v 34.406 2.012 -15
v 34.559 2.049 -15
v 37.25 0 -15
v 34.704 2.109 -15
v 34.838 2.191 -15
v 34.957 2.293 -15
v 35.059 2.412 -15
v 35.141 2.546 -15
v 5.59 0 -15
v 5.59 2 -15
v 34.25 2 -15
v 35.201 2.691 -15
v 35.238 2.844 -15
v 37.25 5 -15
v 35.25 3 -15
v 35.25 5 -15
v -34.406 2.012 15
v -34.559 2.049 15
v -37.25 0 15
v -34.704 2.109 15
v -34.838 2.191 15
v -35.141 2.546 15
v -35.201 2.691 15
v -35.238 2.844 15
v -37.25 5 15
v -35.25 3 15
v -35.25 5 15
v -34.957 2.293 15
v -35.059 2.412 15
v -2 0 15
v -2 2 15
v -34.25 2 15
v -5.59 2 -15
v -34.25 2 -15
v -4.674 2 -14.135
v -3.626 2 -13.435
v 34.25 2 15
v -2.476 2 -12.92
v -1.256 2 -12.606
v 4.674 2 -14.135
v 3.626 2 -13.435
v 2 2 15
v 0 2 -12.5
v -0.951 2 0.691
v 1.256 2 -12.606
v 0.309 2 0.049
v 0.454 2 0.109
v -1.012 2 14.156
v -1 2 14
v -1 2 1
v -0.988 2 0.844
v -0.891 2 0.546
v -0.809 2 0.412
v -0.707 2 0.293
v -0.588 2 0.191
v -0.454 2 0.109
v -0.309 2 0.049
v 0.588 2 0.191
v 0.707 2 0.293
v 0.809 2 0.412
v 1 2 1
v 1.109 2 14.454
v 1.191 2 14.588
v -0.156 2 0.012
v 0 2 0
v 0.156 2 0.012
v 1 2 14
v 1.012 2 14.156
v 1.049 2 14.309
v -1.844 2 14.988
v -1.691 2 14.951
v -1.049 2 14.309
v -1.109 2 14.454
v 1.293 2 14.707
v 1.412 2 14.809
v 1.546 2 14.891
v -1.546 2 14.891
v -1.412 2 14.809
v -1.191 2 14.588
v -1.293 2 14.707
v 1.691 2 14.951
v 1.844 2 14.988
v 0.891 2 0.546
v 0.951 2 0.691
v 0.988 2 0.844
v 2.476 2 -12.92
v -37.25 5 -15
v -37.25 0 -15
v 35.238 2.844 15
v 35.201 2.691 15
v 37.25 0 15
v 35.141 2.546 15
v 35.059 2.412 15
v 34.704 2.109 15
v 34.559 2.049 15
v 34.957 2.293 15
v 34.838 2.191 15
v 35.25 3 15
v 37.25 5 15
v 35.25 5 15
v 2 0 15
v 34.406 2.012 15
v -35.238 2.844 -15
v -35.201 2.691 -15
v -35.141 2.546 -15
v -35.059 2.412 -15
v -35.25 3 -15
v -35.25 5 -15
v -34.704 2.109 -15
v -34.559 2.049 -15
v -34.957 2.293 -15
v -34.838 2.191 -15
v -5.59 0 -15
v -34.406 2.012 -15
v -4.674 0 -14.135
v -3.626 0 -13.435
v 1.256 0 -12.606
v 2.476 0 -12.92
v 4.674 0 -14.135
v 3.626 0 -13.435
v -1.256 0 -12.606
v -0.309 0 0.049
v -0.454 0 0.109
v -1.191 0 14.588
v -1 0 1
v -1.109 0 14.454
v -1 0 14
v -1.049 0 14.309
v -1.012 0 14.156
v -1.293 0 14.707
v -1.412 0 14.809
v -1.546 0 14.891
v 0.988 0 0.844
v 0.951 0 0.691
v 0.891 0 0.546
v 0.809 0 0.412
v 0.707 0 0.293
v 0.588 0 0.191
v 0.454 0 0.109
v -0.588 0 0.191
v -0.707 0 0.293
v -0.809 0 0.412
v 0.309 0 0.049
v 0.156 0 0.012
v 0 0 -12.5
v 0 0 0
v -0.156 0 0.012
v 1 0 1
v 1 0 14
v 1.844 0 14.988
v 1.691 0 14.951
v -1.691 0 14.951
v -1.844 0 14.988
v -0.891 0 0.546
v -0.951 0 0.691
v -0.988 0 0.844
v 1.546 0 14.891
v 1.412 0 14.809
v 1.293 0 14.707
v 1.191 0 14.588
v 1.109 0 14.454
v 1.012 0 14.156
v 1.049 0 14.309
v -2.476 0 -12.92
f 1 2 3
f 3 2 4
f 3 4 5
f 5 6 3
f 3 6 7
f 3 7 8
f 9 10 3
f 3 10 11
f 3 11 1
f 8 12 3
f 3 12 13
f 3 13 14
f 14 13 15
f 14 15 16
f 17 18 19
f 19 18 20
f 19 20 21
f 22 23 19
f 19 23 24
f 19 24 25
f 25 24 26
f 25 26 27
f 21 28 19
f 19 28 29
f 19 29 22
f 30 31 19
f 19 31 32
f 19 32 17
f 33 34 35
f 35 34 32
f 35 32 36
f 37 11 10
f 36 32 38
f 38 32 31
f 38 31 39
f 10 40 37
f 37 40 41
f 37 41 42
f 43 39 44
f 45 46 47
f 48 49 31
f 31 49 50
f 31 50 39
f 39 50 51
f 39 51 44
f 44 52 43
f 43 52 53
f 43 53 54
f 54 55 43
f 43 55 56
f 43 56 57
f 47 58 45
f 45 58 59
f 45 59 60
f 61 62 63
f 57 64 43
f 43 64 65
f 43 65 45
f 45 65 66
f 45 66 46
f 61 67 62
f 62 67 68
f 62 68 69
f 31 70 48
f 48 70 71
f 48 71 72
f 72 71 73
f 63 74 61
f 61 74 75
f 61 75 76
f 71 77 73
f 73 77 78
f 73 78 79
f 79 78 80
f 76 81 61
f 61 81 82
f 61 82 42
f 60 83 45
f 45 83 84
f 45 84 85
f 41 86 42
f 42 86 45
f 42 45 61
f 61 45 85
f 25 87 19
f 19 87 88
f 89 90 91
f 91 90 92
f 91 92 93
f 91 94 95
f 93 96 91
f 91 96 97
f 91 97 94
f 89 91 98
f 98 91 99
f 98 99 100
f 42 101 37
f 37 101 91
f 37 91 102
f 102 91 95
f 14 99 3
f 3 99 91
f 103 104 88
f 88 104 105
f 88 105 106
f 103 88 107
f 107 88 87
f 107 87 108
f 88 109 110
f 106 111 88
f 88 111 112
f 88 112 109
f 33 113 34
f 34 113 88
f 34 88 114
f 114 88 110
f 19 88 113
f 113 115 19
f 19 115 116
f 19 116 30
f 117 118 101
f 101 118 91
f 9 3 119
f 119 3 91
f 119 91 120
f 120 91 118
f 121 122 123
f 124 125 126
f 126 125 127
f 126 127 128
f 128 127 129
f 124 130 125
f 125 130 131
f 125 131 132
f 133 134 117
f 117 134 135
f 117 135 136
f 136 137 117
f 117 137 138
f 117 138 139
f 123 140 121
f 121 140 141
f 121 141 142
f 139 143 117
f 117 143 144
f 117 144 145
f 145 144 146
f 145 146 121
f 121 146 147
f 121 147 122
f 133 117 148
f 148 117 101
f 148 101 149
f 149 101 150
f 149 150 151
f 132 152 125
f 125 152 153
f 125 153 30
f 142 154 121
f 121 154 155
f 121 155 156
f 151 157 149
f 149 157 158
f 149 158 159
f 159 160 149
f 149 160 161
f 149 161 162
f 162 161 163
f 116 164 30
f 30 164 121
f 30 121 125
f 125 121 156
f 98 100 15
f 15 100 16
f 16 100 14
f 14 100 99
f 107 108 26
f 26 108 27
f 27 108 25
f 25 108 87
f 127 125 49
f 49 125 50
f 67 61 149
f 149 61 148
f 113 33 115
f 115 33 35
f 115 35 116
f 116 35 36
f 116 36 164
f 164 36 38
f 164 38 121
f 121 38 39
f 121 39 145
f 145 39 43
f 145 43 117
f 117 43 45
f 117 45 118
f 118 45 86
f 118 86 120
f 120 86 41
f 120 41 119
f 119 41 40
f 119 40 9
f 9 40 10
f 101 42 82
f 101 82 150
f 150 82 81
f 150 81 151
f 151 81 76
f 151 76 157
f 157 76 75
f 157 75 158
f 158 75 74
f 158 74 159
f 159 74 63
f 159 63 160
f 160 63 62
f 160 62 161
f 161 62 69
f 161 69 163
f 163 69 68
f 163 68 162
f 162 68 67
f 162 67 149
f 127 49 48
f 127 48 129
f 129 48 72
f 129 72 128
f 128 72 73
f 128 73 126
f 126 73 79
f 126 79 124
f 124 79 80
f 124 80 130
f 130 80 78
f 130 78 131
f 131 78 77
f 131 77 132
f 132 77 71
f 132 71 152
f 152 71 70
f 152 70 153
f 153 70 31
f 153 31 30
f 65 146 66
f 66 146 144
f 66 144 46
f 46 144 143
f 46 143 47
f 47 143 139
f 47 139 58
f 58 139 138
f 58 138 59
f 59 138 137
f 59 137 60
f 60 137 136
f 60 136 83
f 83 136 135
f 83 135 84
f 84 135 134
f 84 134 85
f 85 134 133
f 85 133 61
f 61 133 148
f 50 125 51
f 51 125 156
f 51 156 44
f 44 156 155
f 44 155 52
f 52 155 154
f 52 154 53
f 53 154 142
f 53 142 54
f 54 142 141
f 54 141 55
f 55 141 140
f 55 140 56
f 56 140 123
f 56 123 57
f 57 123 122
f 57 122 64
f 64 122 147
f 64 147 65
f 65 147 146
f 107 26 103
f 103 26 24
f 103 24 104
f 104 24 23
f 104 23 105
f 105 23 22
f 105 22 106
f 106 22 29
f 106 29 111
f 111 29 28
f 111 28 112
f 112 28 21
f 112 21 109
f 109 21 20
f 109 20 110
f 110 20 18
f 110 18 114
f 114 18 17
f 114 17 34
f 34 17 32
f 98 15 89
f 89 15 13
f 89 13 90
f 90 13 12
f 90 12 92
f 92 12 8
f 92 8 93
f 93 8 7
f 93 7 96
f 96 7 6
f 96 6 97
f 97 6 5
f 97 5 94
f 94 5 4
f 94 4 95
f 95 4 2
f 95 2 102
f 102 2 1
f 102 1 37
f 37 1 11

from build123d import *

# Parameters (mm, degrees)
SKETCH1_W               = 74.5
SKETCH1_H               = 30
BOSS_EXTRUDE1_DEPTH     = 2
SKETCH4_W               = 2
SKETCH4_H               = 30
BOSS_EXTRUDE2_DEPTH     = 5
CUT_EXTRUDE1_DEPTH      = 41.268629229
CUT_EXTRUDE1_DEPTH_BACK = 41.268629229
SKETCH5_W               = 2
SKETCH5_H               = 15
CUT_EXTRUDE2_DEPTH      = 41.268629229
CUT_EXTRUDE2_DEPTH_BACK = 41.268629229
SKETCH6_R               = 7.5
FILLET1_R               = 1


with BuildPart() as part:
    # Sketch1 → Boss-Extrude1 (new body)
    with BuildSketch(Plane(origin=(0, 0, 0), x_dir=(1, 0, 0), z_dir=(0, 1, 0))):
        Rectangle(SKETCH1_W, SKETCH1_H)
    extrude(amount=BOSS_EXTRUDE1_DEPTH)

    # Sketch4 → Boss-Extrude2 (add)
    with BuildSketch(Plane(origin=(0, 0, 0), x_dir=(1, 0, 0), z_dir=(0, 1, 0))):
        with Locations((36.25, 0)):
            Rectangle(SKETCH4_W, SKETCH4_H)
        with Locations((-36.25, 0)):
            Rectangle(SKETCH4_W, SKETCH4_H)
    extrude(amount=BOSS_EXTRUDE2_DEPTH)

    # Sketch5 → Cut-Extrude1 (cut, two sides: drawn at the far end of the back side and taken through both)
    with BuildSketch(Plane(origin=(0, 2, 0), x_dir=(1, 0, 0), z_dir=(0, 1, 0)).offset(-CUT_EXTRUDE1_DEPTH_BACK)):
        with Locations((0, -7.5)):
            Rectangle(SKETCH5_W, SKETCH5_H)
    extrude(amount=CUT_EXTRUDE1_DEPTH + CUT_EXTRUDE1_DEPTH_BACK, mode=Mode.SUBTRACT)

    # Sketch6 → Cut-Extrude2 (cut, two sides: drawn at the far end of the back side and taken through both)
    with BuildSketch(Plane(origin=(0, 2, 0), x_dir=(1, 0, 0), z_dir=(0, 1, 0)).offset(-CUT_EXTRUDE2_DEPTH_BACK)):
        with Locations((0, 20)):
            Circle(SKETCH6_R)
    extrude(amount=CUT_EXTRUDE2_DEPTH + CUT_EXTRUDE2_DEPTH_BACK, mode=Mode.SUBTRACT)

    # Fillet1
    fillet1_edges = [part.edges().sort_by_distance(p)[0] for p in [
        (1, 1, 15),
        (-1, 1, 15),
        (-1, 1, 0),
        (1, 1, 0),
        (-35.25, 2, 0),
        (35.25, 2, 0),
    ]]
    fillet(fillet1_edges, radius=FILLET1_R - 0.0001)  # a hair under: the kernel refuses the full size


solid = part.part
